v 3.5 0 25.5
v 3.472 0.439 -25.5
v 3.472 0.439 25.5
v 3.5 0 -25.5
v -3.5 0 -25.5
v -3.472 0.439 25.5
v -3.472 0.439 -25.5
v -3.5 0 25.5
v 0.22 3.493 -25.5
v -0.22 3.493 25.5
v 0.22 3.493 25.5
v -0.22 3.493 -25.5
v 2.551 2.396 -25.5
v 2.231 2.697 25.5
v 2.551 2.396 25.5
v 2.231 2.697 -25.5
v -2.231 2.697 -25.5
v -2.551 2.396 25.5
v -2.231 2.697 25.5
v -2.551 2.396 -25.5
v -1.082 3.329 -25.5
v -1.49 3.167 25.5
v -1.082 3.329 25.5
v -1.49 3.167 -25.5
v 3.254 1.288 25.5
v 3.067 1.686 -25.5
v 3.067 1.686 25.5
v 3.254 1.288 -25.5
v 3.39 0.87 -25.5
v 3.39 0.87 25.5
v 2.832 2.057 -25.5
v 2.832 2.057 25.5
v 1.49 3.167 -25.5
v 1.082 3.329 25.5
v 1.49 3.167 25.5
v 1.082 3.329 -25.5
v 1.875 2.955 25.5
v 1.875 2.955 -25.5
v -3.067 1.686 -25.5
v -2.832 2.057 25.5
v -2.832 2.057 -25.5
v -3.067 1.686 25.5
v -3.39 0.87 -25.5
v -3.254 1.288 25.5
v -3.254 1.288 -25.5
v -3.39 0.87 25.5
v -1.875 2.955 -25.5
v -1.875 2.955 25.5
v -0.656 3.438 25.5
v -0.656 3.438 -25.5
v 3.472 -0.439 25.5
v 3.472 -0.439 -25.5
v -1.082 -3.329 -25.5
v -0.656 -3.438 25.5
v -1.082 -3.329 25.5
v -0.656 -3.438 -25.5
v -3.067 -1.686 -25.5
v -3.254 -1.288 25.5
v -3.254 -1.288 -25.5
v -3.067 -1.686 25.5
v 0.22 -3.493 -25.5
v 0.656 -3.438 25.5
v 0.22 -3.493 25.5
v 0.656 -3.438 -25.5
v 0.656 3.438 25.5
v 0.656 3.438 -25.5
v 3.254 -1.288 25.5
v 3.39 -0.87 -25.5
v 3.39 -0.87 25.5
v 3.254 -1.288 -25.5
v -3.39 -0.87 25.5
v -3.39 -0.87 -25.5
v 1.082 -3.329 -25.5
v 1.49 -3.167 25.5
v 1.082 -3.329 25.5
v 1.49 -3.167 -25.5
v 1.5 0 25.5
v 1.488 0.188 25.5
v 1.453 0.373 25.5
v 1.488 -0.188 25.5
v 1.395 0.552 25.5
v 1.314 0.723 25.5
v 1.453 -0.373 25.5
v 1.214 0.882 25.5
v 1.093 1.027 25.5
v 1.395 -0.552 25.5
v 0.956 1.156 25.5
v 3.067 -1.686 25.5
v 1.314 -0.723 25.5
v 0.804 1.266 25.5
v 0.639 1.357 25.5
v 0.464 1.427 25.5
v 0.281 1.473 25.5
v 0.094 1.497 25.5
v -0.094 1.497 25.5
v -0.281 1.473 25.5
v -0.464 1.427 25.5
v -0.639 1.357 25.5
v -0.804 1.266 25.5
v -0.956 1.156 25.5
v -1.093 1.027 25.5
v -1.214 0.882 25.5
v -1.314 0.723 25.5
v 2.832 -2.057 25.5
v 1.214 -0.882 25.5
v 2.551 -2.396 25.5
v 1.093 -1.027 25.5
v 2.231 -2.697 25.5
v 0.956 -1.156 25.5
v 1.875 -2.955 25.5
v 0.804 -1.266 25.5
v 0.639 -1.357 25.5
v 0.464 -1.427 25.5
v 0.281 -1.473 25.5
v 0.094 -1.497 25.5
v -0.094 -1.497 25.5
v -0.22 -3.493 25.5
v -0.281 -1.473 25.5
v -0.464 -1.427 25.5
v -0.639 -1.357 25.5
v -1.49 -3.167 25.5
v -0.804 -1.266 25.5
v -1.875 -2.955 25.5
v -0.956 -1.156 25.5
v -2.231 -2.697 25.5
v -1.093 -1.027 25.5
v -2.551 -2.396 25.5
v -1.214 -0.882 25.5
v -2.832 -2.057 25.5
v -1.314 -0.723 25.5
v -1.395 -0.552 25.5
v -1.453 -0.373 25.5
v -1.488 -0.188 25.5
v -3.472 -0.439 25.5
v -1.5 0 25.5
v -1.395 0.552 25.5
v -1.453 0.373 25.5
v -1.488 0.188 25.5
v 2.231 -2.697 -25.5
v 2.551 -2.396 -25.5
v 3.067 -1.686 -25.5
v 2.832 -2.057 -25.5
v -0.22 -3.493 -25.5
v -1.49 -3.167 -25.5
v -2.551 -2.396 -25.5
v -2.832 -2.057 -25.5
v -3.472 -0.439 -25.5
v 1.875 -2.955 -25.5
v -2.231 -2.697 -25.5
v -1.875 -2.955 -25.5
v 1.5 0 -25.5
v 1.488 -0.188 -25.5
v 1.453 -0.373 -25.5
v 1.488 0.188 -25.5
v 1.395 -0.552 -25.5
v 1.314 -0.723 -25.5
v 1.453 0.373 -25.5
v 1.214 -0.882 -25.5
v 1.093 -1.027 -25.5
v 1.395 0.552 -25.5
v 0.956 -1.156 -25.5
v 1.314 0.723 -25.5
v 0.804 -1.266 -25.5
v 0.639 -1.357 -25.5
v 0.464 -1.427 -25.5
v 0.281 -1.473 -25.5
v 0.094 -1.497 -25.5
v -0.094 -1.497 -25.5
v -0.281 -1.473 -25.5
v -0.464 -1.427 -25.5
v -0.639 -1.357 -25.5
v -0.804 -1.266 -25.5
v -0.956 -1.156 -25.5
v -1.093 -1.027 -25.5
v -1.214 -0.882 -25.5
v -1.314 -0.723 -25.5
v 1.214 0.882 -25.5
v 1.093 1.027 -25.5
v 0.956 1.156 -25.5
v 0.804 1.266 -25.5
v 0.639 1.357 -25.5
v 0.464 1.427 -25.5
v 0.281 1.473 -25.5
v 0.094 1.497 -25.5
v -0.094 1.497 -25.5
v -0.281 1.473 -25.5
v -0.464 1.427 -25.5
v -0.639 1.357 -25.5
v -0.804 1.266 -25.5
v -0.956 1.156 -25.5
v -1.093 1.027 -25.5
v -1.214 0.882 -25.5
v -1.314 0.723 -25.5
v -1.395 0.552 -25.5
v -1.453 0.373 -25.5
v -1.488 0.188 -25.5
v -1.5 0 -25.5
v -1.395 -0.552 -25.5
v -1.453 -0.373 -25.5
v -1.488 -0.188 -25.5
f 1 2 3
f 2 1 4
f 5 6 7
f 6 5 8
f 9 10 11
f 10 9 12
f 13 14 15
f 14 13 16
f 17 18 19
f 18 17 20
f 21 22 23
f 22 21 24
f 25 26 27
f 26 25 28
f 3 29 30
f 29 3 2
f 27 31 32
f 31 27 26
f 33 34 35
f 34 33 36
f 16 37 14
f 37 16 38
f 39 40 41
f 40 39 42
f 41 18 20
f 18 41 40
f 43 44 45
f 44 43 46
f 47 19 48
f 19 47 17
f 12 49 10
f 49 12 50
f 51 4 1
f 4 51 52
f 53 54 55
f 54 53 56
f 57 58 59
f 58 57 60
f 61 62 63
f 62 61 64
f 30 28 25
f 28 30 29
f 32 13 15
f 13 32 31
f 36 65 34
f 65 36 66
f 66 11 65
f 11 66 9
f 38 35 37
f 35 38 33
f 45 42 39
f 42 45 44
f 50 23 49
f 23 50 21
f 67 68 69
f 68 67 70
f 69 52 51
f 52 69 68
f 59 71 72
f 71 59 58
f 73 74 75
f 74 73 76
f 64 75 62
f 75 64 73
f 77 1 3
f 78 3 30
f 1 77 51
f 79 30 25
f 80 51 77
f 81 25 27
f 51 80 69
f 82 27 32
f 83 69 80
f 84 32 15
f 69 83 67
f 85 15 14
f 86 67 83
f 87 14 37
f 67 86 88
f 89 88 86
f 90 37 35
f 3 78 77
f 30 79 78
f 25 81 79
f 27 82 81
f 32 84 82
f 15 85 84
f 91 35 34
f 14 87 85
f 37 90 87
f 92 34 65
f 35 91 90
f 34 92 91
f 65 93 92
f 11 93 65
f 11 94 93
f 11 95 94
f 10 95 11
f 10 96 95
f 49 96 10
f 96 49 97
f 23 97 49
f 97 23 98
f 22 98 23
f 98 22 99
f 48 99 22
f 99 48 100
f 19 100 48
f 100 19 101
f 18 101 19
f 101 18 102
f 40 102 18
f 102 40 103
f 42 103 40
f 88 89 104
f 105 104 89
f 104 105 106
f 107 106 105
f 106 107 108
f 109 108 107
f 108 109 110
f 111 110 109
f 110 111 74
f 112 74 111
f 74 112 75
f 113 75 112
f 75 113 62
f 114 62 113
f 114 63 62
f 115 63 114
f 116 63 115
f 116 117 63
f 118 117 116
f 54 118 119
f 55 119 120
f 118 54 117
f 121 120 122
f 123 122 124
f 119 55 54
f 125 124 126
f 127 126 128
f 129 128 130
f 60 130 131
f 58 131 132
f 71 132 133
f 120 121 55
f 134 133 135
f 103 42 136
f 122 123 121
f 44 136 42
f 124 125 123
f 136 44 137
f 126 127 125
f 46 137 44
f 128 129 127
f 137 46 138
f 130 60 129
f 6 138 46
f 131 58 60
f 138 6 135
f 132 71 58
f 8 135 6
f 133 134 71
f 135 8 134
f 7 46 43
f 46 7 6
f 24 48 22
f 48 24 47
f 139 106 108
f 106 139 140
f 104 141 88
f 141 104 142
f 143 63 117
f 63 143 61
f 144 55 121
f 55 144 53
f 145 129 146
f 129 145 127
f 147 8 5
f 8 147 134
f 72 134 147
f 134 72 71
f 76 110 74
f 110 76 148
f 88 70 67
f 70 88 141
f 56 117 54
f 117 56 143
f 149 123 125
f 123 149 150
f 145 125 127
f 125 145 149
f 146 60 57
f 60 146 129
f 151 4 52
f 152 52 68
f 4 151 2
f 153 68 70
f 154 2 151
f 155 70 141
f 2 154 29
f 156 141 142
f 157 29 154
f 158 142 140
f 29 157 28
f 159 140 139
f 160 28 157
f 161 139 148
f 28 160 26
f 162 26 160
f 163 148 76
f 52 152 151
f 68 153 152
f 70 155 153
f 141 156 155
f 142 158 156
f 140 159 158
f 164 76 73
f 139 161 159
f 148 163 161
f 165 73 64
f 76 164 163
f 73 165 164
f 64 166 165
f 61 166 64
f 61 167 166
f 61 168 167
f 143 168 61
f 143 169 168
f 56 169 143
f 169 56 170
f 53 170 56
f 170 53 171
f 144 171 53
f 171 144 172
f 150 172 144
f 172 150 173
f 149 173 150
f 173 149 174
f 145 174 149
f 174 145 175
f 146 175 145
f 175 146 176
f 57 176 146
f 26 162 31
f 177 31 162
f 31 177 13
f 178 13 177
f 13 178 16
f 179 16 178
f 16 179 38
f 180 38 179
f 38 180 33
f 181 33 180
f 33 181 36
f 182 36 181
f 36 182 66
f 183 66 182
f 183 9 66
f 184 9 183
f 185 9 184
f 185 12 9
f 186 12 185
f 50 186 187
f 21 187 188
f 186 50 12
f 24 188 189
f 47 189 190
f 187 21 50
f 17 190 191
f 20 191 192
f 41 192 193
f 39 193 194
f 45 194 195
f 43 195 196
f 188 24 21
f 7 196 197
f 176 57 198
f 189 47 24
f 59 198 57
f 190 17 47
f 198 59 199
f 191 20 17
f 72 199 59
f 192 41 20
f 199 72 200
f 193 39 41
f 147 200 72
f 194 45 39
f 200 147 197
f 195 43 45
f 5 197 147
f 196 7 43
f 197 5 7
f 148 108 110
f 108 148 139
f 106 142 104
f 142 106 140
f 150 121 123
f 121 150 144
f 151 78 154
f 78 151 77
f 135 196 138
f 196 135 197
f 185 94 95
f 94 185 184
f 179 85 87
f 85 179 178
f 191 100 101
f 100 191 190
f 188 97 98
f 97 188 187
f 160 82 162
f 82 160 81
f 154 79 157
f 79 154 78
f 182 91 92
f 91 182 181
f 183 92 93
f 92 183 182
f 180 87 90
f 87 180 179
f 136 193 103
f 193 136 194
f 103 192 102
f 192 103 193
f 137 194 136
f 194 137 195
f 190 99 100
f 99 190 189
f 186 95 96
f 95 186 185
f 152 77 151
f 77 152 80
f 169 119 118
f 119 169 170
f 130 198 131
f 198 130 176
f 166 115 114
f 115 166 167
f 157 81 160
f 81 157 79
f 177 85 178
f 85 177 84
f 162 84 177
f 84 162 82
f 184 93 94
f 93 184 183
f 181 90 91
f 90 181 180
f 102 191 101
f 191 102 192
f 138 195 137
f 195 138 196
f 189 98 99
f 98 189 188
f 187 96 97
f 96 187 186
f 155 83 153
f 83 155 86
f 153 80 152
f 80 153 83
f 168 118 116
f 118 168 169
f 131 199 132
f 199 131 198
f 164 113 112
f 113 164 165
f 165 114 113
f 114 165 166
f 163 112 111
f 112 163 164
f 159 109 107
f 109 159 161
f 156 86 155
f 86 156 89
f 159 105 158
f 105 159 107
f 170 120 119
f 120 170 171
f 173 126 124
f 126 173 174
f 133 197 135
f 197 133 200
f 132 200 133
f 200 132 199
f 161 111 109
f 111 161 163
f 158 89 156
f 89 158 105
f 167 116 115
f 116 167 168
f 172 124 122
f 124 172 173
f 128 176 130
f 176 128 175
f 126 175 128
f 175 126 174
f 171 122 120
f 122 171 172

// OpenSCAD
$fn = 50;


difference() {
	union() {
		translate(v = [0, 0, -25.5000000000]) {
			cylinder(h = 51, r = 3.5000000000);
		}
	}
	union() {
		translate(v = [0, 0, -100.0000000000]) {
			cylinder(h = 200, r = 1.5000000000);
		}
	}
}
